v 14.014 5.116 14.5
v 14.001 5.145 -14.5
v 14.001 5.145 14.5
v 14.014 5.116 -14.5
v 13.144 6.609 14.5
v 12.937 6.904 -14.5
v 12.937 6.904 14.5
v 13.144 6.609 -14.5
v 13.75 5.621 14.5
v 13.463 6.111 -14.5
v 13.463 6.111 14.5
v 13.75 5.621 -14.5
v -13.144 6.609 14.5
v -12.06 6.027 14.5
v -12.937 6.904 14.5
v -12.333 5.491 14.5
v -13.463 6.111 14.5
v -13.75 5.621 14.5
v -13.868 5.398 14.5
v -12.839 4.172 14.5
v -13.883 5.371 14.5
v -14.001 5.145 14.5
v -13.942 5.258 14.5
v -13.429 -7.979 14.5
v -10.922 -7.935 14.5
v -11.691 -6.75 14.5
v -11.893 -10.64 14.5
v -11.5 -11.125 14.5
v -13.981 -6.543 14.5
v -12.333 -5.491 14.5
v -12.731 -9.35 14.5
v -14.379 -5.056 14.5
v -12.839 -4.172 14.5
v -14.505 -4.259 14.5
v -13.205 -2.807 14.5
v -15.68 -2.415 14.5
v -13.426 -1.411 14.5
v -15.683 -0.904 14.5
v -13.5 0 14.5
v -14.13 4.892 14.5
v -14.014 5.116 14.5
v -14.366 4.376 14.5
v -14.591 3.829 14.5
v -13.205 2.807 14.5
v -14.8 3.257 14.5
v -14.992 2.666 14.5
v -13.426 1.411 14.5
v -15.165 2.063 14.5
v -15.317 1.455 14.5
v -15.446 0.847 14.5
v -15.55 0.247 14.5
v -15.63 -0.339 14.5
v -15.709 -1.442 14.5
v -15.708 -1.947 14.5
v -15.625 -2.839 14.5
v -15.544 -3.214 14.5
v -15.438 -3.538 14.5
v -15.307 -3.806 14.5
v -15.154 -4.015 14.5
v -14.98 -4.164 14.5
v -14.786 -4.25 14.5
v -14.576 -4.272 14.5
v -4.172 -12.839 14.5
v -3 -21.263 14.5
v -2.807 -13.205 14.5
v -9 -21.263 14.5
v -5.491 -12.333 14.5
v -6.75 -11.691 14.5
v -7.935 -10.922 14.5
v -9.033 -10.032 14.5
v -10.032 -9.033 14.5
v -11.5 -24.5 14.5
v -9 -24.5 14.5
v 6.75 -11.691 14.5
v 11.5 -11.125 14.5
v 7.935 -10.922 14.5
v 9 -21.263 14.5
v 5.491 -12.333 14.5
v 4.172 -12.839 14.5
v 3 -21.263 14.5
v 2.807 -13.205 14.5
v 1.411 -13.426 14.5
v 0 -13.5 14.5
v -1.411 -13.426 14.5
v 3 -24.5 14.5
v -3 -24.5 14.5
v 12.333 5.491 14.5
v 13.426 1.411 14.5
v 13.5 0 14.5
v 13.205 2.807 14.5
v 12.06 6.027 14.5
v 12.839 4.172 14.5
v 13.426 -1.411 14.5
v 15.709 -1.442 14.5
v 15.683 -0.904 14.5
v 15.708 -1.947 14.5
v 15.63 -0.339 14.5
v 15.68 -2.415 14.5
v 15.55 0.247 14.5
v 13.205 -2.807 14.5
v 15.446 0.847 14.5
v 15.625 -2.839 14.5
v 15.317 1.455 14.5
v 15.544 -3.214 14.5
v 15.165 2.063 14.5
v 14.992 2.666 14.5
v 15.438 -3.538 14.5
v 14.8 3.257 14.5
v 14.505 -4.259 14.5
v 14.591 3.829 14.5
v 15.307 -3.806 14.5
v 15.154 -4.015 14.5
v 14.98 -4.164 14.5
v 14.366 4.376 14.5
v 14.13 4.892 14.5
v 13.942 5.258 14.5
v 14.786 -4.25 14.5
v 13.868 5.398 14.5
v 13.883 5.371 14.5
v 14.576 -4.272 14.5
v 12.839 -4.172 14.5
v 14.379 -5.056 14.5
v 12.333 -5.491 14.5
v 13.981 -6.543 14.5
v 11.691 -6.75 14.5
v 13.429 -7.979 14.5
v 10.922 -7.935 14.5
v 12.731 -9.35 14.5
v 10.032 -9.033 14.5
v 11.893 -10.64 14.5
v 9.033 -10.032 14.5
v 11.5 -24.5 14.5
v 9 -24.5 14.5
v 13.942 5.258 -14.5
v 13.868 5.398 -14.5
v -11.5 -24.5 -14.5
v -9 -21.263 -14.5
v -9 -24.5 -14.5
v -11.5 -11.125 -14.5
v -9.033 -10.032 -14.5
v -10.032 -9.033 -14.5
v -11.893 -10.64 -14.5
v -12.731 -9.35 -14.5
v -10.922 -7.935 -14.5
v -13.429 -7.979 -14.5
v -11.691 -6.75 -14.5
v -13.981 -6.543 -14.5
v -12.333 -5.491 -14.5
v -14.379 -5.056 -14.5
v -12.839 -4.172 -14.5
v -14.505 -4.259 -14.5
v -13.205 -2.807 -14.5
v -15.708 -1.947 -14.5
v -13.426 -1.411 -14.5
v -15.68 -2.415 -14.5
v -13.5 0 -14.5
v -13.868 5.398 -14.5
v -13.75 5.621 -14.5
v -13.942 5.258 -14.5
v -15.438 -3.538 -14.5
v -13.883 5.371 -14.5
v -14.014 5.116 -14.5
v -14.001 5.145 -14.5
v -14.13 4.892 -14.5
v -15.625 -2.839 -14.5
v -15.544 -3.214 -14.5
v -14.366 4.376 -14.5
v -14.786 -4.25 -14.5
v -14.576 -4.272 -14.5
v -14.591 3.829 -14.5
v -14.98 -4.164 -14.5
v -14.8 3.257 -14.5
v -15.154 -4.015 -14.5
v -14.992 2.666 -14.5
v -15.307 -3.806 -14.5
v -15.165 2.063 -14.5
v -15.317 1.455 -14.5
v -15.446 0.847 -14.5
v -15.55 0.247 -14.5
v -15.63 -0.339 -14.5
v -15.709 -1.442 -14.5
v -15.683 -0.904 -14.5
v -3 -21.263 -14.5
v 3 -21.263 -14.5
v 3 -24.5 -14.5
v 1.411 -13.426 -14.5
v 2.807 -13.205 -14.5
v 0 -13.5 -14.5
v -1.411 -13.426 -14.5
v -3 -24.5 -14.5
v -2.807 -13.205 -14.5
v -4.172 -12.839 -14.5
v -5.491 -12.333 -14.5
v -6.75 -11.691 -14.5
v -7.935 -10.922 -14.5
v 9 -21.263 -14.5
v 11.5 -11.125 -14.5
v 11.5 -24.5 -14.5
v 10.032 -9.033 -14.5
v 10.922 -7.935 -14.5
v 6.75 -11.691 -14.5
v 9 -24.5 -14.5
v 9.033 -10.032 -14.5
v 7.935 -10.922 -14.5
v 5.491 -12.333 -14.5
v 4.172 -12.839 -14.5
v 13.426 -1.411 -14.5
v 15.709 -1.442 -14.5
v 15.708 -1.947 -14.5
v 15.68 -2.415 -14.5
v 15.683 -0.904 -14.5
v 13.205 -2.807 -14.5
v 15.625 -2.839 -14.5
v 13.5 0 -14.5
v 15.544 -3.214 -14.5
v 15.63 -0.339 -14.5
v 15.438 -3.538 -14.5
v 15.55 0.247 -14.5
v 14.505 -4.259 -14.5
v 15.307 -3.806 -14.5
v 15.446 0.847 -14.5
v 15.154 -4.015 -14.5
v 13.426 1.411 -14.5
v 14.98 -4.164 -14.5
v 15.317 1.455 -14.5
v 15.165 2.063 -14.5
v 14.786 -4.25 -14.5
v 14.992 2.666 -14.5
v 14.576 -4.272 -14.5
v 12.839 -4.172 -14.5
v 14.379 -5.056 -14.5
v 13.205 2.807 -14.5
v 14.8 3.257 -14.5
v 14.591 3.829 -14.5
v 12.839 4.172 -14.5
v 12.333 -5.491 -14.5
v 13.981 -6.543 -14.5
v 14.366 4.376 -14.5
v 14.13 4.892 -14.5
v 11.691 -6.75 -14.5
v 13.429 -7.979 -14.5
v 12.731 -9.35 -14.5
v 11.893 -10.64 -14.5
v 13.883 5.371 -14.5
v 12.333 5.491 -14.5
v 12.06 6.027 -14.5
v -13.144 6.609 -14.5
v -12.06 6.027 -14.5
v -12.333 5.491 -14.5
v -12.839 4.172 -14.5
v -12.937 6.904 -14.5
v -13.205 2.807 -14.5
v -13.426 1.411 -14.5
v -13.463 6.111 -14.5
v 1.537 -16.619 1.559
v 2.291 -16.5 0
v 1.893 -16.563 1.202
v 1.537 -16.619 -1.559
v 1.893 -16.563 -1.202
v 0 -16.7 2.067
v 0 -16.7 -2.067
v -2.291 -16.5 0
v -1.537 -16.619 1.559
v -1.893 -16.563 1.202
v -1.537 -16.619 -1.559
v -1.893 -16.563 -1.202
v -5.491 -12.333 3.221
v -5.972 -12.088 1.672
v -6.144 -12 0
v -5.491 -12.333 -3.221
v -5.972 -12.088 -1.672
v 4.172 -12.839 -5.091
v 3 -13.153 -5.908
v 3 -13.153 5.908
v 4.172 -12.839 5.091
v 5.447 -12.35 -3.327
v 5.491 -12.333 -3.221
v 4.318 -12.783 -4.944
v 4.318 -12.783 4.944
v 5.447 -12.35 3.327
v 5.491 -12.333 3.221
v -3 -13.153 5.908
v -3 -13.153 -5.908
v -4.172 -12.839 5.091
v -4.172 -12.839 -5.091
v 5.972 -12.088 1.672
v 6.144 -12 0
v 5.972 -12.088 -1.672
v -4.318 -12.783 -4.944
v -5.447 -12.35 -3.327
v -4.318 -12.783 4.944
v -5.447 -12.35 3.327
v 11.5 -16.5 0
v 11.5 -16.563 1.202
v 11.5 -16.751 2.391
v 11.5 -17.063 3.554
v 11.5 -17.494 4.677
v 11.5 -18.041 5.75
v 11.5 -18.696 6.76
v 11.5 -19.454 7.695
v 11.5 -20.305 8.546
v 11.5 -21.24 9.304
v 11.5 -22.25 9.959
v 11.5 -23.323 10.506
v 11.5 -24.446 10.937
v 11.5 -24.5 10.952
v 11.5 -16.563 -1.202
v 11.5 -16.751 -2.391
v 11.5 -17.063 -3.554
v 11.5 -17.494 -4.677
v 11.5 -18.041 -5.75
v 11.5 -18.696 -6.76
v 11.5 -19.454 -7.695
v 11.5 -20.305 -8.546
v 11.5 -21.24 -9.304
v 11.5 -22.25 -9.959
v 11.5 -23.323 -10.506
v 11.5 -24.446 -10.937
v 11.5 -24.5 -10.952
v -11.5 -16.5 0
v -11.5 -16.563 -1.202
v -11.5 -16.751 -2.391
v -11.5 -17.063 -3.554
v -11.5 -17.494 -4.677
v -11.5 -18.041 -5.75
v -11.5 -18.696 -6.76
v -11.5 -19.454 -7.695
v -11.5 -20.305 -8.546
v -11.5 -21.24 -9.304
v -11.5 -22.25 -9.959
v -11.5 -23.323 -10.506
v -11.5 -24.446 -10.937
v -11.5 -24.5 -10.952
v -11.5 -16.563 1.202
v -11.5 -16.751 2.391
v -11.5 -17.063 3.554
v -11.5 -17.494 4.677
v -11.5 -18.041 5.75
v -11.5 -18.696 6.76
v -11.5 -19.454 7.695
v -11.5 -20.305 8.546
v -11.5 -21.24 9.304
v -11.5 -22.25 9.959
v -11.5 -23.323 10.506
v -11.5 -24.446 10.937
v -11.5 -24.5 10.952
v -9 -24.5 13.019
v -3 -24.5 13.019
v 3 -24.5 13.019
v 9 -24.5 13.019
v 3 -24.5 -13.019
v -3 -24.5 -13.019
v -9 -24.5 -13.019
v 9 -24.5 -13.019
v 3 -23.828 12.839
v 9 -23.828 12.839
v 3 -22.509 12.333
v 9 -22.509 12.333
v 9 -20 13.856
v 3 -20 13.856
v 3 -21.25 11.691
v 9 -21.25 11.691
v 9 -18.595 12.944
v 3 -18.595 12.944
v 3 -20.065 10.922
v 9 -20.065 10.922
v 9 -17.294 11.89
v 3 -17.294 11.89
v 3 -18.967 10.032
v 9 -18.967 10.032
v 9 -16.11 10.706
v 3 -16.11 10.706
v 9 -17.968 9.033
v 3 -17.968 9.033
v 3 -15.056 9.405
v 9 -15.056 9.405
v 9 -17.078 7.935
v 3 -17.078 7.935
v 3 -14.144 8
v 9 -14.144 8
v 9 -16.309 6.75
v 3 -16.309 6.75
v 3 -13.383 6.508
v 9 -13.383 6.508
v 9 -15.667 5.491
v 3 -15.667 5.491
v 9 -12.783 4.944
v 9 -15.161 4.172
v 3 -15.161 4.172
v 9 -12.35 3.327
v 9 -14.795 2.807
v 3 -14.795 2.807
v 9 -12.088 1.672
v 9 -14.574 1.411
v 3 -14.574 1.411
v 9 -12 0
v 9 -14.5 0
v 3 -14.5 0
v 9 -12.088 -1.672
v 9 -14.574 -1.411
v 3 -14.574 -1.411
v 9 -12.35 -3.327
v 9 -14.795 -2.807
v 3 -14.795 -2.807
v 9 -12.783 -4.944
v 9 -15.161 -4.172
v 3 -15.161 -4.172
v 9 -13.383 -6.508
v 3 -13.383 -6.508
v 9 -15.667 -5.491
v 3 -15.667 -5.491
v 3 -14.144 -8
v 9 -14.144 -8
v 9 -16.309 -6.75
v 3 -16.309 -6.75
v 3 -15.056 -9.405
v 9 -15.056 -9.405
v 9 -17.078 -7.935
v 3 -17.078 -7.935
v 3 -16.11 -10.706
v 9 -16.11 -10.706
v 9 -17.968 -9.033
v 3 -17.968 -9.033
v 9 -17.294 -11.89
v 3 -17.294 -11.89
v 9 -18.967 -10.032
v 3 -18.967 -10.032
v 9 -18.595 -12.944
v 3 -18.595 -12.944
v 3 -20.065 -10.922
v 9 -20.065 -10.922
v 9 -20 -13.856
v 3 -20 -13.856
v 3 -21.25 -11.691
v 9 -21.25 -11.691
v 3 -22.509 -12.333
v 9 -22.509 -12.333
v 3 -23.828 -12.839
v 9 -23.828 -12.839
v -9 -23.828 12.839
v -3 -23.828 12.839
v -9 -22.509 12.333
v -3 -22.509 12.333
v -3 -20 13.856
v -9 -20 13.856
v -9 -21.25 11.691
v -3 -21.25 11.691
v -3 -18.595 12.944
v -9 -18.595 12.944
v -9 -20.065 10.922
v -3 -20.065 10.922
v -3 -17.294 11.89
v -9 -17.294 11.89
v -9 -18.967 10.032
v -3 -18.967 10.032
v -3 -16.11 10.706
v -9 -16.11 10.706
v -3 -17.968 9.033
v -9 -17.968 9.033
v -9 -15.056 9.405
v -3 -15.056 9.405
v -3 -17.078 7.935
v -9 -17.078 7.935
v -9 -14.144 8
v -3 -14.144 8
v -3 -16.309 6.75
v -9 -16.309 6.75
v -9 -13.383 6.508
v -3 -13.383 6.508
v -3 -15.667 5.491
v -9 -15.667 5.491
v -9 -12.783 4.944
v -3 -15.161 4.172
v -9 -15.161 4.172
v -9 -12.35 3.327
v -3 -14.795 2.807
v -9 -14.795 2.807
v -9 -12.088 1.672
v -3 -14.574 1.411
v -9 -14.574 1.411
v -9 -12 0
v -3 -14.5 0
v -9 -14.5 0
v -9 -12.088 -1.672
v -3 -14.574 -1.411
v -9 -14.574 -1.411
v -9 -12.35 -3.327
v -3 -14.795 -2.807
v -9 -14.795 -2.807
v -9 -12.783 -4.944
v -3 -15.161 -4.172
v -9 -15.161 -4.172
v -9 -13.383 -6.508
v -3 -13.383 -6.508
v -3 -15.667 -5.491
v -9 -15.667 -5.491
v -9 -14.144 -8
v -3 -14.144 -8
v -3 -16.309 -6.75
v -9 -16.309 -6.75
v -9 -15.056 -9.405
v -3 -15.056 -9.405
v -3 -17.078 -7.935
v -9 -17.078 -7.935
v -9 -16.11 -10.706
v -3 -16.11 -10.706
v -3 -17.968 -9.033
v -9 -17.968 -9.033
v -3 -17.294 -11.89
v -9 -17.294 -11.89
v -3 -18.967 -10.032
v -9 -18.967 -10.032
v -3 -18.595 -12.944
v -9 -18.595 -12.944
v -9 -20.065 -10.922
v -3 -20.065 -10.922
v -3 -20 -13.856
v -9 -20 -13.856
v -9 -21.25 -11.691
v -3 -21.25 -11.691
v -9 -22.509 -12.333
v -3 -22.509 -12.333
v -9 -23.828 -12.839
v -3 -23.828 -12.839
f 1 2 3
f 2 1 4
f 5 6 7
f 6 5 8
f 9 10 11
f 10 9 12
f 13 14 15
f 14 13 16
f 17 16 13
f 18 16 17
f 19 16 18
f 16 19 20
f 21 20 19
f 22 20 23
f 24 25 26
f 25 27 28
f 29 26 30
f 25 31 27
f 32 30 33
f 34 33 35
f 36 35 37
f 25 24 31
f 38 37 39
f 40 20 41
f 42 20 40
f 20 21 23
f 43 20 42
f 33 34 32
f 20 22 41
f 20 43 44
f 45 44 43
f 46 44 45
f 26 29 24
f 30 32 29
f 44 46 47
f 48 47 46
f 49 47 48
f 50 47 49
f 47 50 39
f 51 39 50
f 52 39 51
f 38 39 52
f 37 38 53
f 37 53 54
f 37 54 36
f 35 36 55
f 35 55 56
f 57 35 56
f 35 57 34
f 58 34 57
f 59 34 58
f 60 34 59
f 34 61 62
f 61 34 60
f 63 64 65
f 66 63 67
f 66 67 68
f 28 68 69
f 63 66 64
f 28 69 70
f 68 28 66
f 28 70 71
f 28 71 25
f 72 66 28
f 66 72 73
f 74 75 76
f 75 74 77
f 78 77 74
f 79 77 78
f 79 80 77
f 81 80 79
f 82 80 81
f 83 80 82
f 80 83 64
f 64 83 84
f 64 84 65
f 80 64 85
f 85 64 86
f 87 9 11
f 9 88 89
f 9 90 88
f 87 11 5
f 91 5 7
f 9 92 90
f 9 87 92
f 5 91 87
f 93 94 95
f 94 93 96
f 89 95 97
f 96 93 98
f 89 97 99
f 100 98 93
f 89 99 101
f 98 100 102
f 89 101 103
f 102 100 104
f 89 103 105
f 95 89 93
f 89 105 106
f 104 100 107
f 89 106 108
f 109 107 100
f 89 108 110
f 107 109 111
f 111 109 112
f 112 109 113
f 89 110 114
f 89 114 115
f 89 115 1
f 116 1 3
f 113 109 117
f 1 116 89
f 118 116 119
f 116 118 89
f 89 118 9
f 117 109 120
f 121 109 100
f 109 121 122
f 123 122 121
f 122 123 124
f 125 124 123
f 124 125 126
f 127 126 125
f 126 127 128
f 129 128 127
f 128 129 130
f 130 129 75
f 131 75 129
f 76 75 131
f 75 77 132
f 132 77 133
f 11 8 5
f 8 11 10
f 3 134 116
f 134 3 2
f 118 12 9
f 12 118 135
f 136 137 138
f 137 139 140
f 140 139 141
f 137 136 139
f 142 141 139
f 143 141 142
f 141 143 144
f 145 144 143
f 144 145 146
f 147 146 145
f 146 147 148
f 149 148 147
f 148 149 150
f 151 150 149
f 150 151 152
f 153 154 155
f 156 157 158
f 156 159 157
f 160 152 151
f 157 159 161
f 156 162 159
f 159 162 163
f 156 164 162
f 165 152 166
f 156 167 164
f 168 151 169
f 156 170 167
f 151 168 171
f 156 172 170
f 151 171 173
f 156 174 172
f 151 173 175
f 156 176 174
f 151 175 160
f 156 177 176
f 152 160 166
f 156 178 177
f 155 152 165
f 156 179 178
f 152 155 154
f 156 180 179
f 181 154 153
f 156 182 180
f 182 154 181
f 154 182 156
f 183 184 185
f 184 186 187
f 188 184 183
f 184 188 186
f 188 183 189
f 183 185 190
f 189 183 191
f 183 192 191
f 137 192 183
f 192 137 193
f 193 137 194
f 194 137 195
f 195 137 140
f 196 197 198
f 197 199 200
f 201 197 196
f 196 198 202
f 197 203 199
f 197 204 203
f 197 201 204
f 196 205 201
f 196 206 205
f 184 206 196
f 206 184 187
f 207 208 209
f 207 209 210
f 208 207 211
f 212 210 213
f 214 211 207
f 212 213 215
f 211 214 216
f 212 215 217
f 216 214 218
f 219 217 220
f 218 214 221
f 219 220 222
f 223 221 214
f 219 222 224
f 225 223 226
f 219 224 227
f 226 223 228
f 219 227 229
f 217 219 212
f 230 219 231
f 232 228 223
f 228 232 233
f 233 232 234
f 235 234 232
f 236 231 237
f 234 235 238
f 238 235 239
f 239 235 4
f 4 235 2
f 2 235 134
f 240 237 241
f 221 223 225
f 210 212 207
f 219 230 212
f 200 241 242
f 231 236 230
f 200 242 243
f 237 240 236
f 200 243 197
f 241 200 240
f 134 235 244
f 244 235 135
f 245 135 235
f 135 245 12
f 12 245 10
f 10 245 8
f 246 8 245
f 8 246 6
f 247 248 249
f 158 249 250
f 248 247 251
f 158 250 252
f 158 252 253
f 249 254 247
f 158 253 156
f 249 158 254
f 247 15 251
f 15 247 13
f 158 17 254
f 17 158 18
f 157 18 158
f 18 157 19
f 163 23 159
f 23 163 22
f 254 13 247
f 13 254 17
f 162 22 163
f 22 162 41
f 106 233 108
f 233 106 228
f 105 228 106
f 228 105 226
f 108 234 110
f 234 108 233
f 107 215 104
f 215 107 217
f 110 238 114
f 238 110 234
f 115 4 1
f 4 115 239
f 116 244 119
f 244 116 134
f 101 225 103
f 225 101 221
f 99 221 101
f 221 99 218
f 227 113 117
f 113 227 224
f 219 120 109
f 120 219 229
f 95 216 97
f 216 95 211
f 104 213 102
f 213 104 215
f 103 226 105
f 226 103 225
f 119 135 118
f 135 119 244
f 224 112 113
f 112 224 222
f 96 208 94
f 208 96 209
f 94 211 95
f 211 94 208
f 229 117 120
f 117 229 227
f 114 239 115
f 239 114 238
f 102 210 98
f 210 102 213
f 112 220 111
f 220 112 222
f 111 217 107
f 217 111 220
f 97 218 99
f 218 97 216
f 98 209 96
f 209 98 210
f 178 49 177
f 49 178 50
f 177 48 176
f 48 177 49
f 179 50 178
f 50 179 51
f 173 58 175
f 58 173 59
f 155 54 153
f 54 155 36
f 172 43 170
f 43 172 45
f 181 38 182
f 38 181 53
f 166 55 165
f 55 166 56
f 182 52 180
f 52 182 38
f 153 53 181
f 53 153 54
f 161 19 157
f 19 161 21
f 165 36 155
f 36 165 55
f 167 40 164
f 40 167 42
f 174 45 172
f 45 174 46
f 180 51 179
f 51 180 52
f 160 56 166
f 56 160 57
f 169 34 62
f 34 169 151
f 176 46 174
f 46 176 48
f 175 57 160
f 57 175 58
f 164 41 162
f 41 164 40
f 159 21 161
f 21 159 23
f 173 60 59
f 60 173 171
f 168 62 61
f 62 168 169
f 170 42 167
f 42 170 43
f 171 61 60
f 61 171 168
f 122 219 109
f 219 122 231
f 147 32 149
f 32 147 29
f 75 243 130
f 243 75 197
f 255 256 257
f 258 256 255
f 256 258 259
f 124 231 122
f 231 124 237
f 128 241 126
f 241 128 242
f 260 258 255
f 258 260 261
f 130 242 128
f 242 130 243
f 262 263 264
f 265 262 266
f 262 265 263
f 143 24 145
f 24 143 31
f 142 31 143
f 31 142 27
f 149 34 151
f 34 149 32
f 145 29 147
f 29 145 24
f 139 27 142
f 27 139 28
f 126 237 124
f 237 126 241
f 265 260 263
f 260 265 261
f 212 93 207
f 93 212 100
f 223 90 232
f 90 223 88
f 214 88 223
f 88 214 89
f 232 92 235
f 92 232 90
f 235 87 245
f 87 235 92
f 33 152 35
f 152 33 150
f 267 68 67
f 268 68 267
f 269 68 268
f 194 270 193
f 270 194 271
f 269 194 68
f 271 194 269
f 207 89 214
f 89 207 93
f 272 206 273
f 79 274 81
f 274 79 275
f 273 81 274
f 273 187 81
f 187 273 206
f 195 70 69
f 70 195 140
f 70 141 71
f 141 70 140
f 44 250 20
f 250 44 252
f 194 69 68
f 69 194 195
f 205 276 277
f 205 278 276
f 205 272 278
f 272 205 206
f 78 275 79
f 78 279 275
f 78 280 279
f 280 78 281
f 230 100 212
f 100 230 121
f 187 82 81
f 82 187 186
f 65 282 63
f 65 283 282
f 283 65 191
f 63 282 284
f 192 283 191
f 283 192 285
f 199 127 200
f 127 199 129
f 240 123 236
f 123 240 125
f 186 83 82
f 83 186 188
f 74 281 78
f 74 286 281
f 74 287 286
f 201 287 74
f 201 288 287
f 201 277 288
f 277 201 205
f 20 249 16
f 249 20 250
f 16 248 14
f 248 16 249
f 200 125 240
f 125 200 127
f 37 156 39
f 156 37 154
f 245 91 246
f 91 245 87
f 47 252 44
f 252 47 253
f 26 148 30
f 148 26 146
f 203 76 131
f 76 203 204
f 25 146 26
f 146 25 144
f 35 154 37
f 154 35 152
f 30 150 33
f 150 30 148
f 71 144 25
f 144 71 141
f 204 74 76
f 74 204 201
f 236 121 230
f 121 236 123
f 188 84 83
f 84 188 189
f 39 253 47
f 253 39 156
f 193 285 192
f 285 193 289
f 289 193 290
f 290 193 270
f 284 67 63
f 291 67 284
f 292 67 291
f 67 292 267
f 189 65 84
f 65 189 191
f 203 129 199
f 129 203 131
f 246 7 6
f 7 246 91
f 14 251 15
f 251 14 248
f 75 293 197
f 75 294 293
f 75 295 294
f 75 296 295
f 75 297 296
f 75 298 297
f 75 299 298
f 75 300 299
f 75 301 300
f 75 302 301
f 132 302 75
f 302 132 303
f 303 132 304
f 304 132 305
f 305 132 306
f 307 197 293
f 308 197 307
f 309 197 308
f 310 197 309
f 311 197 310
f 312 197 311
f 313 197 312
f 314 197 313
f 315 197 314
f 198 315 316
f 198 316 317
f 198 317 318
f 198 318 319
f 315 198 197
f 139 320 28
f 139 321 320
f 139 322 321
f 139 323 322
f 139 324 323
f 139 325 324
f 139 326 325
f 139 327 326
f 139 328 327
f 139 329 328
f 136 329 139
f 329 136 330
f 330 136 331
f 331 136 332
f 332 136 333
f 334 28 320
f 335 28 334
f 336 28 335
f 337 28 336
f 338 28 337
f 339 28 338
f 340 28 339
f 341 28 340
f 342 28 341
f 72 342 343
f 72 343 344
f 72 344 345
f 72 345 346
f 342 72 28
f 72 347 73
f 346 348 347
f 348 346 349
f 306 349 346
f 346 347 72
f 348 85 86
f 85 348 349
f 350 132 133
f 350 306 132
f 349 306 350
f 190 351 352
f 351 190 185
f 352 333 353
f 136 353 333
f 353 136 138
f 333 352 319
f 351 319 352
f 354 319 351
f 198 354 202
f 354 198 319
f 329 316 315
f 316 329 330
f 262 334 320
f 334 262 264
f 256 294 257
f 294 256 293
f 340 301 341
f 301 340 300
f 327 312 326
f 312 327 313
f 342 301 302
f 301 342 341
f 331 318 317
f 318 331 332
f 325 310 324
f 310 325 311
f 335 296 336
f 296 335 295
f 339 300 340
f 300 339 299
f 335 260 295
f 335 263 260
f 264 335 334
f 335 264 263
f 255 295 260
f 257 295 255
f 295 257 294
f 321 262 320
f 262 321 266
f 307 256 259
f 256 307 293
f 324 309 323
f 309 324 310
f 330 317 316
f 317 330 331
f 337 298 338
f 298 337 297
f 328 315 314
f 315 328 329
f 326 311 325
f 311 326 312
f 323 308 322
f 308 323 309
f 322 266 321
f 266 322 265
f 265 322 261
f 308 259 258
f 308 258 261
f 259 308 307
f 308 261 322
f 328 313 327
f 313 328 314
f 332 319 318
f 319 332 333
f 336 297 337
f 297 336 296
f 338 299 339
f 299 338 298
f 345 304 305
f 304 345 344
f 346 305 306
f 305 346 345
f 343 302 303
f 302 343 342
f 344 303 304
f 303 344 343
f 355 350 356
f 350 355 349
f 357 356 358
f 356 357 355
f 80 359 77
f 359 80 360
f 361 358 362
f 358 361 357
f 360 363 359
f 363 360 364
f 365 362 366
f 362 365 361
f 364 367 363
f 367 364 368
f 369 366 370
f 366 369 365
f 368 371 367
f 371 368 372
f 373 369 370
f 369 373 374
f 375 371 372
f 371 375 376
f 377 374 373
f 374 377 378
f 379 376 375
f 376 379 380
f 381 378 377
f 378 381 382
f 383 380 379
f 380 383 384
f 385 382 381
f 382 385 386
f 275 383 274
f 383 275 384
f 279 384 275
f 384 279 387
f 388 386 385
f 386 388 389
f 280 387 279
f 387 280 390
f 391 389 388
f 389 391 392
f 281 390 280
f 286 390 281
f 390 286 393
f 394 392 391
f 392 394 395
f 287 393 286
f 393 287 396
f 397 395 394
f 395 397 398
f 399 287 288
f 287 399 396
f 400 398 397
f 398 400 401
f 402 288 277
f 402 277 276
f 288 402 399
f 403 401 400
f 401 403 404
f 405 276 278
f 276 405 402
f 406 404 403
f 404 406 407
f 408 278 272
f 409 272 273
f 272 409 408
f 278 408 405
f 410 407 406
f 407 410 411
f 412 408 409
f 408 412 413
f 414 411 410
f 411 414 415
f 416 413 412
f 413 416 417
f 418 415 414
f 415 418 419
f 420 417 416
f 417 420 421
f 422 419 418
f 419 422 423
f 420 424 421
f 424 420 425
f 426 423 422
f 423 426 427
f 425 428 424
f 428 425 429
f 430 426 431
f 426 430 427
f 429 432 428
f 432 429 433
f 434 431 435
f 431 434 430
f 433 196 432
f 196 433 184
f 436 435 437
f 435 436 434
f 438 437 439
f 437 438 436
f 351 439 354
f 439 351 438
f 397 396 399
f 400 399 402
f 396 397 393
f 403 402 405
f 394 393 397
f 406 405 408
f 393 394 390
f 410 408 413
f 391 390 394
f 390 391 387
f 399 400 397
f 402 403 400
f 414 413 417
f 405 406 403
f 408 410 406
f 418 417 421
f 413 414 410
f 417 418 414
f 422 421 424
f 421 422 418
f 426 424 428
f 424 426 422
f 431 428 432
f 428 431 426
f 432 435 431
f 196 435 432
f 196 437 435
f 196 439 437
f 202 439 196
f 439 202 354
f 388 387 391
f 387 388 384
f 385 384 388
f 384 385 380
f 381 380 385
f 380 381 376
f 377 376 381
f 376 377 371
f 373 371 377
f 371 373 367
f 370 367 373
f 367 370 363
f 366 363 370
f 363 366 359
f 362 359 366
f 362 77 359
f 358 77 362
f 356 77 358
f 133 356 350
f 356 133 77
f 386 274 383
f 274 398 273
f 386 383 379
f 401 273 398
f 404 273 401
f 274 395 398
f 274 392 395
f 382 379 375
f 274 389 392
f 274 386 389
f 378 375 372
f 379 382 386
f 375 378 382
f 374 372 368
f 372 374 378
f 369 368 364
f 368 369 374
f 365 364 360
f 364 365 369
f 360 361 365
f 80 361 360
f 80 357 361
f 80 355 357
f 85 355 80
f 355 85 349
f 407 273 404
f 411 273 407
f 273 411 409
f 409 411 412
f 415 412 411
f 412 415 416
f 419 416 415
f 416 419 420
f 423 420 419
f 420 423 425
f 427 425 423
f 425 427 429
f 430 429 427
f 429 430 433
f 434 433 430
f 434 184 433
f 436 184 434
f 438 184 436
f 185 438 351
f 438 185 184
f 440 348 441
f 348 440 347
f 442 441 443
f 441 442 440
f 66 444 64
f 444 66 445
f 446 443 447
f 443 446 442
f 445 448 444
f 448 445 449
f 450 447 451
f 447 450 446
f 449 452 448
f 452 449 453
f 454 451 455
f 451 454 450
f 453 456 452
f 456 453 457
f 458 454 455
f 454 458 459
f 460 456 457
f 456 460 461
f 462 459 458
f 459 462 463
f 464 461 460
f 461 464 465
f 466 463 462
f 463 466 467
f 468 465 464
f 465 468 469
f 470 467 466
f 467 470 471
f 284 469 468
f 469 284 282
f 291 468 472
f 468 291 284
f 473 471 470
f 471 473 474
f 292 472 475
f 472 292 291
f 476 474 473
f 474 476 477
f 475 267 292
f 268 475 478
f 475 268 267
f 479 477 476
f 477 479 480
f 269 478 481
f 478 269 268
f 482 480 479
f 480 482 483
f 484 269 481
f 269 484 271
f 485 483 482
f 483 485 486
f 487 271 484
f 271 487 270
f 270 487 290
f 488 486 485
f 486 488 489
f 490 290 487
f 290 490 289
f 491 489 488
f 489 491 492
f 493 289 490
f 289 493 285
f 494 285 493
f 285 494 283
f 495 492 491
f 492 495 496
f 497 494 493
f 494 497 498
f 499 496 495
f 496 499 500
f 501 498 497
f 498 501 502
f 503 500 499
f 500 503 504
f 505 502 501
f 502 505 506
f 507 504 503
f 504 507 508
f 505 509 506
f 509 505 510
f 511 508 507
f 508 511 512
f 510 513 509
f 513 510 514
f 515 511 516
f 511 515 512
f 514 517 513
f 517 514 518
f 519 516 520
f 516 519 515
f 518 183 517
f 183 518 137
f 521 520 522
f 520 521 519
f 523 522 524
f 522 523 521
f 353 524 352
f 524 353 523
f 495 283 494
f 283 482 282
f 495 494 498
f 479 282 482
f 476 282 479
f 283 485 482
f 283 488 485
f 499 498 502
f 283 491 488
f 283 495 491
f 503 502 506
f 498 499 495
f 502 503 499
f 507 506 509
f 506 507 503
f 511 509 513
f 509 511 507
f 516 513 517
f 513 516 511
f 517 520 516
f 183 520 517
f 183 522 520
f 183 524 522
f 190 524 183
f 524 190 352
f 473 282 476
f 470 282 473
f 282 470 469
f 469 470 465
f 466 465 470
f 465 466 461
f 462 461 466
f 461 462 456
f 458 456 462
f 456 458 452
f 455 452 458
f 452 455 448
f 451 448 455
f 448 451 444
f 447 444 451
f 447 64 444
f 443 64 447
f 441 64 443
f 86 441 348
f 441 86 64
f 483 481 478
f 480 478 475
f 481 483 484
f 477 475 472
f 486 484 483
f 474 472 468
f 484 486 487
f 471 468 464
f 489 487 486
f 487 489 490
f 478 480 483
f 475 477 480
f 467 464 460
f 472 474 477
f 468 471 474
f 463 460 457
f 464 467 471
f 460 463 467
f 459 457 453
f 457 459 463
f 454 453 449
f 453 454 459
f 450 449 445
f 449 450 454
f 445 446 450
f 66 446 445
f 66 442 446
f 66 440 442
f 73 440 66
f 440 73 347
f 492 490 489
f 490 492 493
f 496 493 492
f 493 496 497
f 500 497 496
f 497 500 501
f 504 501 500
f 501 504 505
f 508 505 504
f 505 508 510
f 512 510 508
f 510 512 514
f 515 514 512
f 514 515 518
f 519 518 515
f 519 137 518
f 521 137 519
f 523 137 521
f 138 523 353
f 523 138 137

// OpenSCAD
// Adapted from http://www.thingiverse.com/thing:100764 to fit
// common 7W single-AA flashlights such as the Ultrafire
// http://www.amazon.com/UltraFire-300lm-Flashlight-Torch-Adjustable/dp/B006E0QAFY/
// I simplfied the code a bit and added a lip to better accomodate the barrell.

handlebarDiameter = 22.5;
fudj = 0.5;
flashlightDiameter1 = 26.0; // 22.5 for Ultrafire barrell, 17.5 for handle
flashlightDiameter2 = 26.0; // 25.0, 20.0 for ?
lip = 7;
addedThickness = 1.2;
$fn = 60;

handlebarD = handlebarDiameter + fudj;
length = handlebarD + 6;
circumradius1 = flashlightDiameter1/2 + fudj;
circumradius2 = flashlightDiameter2/2 + fudj;

yOffset = -handlebarD/2 - flashlightDiameter1/2 - .5;

difference() {
	union() {
		flashlightMount();
		handlebarMount();
	}
	#zipCutouts();
}

module flashlightMount() {
	difference() {
		outer();
		flashlightBody();
		cutout();
	}
}

module handlebarMount() {
	difference() {
        // The +0.5 on yOffset reduces overhang to avoid the need for support
		translate([-(flashlightDiameter1-3)/2, yOffset + 0.5, -length/2])
			cube(size=[flashlightDiameter1-3, handlebarD, length], center=false);
		translate([0,yOffset - 3,0])
			rotate([0,90,0]) cylinder(r=handlebarD/2, h=length, center=true);
		cylinder(r=circumradius1, h=length+1, center=true, $fn=60);
	}
}

module zipCutouts() {
    if(flashlightDiameter1>20){
	    translate([flashlightDiameter1/2 - 7,2,0]) zipCutout();
	    translate([-(flashlightDiameter1/2 - 7),2,0]) zipCutout();
    }else{
        translate([0,2,0]) zipCutout();
    }
}
module zipCutout() {
	translate([0,yOffset - 5,0]) rotate([0,90,0])
	    rotate_extrude() translate([handlebarD/2 + 1.25 + 2, 0, 0])
		    square(size=[2.5, 6], center=true);
}

module flashlightBody() {
    translate([0,0,lip+.1])
	    cylinder(r=circumradius1, h=length+.1, center=true, $fn=60);
    translate([0,0,-lip-.1])
        cylinder(r=circumradius2, h=length+.1, center=true, $fn=60);
}

outerYOff = -2;
module outer() {
	translate([0,outerYOff,0]) cylinder(r=circumradius1 + addedThickness, h=length, center=true);
    for(a=[40, 180-40, 15, 180-15])
        rib(a);
}

module rib(angle, extent=3) {
	r = 2;
	translate([
		(circumradius1+addedThickness-r/2) * cos(angle), 
		(circumradius1+addedThickness-r/2) * sin(angle) + outerYOff,
		0
	]) 
		rotate([0,0,angle])
		scale([1,extent,1])
		cylinder(r=r, h=length, center=true);
}

module cutout() {
	translate([0, flashlightDiameter1/3, 0]) 
		cylinder(r=circumradius1 + addedThickness, h=length+3, center=true, $fn=4);

}
